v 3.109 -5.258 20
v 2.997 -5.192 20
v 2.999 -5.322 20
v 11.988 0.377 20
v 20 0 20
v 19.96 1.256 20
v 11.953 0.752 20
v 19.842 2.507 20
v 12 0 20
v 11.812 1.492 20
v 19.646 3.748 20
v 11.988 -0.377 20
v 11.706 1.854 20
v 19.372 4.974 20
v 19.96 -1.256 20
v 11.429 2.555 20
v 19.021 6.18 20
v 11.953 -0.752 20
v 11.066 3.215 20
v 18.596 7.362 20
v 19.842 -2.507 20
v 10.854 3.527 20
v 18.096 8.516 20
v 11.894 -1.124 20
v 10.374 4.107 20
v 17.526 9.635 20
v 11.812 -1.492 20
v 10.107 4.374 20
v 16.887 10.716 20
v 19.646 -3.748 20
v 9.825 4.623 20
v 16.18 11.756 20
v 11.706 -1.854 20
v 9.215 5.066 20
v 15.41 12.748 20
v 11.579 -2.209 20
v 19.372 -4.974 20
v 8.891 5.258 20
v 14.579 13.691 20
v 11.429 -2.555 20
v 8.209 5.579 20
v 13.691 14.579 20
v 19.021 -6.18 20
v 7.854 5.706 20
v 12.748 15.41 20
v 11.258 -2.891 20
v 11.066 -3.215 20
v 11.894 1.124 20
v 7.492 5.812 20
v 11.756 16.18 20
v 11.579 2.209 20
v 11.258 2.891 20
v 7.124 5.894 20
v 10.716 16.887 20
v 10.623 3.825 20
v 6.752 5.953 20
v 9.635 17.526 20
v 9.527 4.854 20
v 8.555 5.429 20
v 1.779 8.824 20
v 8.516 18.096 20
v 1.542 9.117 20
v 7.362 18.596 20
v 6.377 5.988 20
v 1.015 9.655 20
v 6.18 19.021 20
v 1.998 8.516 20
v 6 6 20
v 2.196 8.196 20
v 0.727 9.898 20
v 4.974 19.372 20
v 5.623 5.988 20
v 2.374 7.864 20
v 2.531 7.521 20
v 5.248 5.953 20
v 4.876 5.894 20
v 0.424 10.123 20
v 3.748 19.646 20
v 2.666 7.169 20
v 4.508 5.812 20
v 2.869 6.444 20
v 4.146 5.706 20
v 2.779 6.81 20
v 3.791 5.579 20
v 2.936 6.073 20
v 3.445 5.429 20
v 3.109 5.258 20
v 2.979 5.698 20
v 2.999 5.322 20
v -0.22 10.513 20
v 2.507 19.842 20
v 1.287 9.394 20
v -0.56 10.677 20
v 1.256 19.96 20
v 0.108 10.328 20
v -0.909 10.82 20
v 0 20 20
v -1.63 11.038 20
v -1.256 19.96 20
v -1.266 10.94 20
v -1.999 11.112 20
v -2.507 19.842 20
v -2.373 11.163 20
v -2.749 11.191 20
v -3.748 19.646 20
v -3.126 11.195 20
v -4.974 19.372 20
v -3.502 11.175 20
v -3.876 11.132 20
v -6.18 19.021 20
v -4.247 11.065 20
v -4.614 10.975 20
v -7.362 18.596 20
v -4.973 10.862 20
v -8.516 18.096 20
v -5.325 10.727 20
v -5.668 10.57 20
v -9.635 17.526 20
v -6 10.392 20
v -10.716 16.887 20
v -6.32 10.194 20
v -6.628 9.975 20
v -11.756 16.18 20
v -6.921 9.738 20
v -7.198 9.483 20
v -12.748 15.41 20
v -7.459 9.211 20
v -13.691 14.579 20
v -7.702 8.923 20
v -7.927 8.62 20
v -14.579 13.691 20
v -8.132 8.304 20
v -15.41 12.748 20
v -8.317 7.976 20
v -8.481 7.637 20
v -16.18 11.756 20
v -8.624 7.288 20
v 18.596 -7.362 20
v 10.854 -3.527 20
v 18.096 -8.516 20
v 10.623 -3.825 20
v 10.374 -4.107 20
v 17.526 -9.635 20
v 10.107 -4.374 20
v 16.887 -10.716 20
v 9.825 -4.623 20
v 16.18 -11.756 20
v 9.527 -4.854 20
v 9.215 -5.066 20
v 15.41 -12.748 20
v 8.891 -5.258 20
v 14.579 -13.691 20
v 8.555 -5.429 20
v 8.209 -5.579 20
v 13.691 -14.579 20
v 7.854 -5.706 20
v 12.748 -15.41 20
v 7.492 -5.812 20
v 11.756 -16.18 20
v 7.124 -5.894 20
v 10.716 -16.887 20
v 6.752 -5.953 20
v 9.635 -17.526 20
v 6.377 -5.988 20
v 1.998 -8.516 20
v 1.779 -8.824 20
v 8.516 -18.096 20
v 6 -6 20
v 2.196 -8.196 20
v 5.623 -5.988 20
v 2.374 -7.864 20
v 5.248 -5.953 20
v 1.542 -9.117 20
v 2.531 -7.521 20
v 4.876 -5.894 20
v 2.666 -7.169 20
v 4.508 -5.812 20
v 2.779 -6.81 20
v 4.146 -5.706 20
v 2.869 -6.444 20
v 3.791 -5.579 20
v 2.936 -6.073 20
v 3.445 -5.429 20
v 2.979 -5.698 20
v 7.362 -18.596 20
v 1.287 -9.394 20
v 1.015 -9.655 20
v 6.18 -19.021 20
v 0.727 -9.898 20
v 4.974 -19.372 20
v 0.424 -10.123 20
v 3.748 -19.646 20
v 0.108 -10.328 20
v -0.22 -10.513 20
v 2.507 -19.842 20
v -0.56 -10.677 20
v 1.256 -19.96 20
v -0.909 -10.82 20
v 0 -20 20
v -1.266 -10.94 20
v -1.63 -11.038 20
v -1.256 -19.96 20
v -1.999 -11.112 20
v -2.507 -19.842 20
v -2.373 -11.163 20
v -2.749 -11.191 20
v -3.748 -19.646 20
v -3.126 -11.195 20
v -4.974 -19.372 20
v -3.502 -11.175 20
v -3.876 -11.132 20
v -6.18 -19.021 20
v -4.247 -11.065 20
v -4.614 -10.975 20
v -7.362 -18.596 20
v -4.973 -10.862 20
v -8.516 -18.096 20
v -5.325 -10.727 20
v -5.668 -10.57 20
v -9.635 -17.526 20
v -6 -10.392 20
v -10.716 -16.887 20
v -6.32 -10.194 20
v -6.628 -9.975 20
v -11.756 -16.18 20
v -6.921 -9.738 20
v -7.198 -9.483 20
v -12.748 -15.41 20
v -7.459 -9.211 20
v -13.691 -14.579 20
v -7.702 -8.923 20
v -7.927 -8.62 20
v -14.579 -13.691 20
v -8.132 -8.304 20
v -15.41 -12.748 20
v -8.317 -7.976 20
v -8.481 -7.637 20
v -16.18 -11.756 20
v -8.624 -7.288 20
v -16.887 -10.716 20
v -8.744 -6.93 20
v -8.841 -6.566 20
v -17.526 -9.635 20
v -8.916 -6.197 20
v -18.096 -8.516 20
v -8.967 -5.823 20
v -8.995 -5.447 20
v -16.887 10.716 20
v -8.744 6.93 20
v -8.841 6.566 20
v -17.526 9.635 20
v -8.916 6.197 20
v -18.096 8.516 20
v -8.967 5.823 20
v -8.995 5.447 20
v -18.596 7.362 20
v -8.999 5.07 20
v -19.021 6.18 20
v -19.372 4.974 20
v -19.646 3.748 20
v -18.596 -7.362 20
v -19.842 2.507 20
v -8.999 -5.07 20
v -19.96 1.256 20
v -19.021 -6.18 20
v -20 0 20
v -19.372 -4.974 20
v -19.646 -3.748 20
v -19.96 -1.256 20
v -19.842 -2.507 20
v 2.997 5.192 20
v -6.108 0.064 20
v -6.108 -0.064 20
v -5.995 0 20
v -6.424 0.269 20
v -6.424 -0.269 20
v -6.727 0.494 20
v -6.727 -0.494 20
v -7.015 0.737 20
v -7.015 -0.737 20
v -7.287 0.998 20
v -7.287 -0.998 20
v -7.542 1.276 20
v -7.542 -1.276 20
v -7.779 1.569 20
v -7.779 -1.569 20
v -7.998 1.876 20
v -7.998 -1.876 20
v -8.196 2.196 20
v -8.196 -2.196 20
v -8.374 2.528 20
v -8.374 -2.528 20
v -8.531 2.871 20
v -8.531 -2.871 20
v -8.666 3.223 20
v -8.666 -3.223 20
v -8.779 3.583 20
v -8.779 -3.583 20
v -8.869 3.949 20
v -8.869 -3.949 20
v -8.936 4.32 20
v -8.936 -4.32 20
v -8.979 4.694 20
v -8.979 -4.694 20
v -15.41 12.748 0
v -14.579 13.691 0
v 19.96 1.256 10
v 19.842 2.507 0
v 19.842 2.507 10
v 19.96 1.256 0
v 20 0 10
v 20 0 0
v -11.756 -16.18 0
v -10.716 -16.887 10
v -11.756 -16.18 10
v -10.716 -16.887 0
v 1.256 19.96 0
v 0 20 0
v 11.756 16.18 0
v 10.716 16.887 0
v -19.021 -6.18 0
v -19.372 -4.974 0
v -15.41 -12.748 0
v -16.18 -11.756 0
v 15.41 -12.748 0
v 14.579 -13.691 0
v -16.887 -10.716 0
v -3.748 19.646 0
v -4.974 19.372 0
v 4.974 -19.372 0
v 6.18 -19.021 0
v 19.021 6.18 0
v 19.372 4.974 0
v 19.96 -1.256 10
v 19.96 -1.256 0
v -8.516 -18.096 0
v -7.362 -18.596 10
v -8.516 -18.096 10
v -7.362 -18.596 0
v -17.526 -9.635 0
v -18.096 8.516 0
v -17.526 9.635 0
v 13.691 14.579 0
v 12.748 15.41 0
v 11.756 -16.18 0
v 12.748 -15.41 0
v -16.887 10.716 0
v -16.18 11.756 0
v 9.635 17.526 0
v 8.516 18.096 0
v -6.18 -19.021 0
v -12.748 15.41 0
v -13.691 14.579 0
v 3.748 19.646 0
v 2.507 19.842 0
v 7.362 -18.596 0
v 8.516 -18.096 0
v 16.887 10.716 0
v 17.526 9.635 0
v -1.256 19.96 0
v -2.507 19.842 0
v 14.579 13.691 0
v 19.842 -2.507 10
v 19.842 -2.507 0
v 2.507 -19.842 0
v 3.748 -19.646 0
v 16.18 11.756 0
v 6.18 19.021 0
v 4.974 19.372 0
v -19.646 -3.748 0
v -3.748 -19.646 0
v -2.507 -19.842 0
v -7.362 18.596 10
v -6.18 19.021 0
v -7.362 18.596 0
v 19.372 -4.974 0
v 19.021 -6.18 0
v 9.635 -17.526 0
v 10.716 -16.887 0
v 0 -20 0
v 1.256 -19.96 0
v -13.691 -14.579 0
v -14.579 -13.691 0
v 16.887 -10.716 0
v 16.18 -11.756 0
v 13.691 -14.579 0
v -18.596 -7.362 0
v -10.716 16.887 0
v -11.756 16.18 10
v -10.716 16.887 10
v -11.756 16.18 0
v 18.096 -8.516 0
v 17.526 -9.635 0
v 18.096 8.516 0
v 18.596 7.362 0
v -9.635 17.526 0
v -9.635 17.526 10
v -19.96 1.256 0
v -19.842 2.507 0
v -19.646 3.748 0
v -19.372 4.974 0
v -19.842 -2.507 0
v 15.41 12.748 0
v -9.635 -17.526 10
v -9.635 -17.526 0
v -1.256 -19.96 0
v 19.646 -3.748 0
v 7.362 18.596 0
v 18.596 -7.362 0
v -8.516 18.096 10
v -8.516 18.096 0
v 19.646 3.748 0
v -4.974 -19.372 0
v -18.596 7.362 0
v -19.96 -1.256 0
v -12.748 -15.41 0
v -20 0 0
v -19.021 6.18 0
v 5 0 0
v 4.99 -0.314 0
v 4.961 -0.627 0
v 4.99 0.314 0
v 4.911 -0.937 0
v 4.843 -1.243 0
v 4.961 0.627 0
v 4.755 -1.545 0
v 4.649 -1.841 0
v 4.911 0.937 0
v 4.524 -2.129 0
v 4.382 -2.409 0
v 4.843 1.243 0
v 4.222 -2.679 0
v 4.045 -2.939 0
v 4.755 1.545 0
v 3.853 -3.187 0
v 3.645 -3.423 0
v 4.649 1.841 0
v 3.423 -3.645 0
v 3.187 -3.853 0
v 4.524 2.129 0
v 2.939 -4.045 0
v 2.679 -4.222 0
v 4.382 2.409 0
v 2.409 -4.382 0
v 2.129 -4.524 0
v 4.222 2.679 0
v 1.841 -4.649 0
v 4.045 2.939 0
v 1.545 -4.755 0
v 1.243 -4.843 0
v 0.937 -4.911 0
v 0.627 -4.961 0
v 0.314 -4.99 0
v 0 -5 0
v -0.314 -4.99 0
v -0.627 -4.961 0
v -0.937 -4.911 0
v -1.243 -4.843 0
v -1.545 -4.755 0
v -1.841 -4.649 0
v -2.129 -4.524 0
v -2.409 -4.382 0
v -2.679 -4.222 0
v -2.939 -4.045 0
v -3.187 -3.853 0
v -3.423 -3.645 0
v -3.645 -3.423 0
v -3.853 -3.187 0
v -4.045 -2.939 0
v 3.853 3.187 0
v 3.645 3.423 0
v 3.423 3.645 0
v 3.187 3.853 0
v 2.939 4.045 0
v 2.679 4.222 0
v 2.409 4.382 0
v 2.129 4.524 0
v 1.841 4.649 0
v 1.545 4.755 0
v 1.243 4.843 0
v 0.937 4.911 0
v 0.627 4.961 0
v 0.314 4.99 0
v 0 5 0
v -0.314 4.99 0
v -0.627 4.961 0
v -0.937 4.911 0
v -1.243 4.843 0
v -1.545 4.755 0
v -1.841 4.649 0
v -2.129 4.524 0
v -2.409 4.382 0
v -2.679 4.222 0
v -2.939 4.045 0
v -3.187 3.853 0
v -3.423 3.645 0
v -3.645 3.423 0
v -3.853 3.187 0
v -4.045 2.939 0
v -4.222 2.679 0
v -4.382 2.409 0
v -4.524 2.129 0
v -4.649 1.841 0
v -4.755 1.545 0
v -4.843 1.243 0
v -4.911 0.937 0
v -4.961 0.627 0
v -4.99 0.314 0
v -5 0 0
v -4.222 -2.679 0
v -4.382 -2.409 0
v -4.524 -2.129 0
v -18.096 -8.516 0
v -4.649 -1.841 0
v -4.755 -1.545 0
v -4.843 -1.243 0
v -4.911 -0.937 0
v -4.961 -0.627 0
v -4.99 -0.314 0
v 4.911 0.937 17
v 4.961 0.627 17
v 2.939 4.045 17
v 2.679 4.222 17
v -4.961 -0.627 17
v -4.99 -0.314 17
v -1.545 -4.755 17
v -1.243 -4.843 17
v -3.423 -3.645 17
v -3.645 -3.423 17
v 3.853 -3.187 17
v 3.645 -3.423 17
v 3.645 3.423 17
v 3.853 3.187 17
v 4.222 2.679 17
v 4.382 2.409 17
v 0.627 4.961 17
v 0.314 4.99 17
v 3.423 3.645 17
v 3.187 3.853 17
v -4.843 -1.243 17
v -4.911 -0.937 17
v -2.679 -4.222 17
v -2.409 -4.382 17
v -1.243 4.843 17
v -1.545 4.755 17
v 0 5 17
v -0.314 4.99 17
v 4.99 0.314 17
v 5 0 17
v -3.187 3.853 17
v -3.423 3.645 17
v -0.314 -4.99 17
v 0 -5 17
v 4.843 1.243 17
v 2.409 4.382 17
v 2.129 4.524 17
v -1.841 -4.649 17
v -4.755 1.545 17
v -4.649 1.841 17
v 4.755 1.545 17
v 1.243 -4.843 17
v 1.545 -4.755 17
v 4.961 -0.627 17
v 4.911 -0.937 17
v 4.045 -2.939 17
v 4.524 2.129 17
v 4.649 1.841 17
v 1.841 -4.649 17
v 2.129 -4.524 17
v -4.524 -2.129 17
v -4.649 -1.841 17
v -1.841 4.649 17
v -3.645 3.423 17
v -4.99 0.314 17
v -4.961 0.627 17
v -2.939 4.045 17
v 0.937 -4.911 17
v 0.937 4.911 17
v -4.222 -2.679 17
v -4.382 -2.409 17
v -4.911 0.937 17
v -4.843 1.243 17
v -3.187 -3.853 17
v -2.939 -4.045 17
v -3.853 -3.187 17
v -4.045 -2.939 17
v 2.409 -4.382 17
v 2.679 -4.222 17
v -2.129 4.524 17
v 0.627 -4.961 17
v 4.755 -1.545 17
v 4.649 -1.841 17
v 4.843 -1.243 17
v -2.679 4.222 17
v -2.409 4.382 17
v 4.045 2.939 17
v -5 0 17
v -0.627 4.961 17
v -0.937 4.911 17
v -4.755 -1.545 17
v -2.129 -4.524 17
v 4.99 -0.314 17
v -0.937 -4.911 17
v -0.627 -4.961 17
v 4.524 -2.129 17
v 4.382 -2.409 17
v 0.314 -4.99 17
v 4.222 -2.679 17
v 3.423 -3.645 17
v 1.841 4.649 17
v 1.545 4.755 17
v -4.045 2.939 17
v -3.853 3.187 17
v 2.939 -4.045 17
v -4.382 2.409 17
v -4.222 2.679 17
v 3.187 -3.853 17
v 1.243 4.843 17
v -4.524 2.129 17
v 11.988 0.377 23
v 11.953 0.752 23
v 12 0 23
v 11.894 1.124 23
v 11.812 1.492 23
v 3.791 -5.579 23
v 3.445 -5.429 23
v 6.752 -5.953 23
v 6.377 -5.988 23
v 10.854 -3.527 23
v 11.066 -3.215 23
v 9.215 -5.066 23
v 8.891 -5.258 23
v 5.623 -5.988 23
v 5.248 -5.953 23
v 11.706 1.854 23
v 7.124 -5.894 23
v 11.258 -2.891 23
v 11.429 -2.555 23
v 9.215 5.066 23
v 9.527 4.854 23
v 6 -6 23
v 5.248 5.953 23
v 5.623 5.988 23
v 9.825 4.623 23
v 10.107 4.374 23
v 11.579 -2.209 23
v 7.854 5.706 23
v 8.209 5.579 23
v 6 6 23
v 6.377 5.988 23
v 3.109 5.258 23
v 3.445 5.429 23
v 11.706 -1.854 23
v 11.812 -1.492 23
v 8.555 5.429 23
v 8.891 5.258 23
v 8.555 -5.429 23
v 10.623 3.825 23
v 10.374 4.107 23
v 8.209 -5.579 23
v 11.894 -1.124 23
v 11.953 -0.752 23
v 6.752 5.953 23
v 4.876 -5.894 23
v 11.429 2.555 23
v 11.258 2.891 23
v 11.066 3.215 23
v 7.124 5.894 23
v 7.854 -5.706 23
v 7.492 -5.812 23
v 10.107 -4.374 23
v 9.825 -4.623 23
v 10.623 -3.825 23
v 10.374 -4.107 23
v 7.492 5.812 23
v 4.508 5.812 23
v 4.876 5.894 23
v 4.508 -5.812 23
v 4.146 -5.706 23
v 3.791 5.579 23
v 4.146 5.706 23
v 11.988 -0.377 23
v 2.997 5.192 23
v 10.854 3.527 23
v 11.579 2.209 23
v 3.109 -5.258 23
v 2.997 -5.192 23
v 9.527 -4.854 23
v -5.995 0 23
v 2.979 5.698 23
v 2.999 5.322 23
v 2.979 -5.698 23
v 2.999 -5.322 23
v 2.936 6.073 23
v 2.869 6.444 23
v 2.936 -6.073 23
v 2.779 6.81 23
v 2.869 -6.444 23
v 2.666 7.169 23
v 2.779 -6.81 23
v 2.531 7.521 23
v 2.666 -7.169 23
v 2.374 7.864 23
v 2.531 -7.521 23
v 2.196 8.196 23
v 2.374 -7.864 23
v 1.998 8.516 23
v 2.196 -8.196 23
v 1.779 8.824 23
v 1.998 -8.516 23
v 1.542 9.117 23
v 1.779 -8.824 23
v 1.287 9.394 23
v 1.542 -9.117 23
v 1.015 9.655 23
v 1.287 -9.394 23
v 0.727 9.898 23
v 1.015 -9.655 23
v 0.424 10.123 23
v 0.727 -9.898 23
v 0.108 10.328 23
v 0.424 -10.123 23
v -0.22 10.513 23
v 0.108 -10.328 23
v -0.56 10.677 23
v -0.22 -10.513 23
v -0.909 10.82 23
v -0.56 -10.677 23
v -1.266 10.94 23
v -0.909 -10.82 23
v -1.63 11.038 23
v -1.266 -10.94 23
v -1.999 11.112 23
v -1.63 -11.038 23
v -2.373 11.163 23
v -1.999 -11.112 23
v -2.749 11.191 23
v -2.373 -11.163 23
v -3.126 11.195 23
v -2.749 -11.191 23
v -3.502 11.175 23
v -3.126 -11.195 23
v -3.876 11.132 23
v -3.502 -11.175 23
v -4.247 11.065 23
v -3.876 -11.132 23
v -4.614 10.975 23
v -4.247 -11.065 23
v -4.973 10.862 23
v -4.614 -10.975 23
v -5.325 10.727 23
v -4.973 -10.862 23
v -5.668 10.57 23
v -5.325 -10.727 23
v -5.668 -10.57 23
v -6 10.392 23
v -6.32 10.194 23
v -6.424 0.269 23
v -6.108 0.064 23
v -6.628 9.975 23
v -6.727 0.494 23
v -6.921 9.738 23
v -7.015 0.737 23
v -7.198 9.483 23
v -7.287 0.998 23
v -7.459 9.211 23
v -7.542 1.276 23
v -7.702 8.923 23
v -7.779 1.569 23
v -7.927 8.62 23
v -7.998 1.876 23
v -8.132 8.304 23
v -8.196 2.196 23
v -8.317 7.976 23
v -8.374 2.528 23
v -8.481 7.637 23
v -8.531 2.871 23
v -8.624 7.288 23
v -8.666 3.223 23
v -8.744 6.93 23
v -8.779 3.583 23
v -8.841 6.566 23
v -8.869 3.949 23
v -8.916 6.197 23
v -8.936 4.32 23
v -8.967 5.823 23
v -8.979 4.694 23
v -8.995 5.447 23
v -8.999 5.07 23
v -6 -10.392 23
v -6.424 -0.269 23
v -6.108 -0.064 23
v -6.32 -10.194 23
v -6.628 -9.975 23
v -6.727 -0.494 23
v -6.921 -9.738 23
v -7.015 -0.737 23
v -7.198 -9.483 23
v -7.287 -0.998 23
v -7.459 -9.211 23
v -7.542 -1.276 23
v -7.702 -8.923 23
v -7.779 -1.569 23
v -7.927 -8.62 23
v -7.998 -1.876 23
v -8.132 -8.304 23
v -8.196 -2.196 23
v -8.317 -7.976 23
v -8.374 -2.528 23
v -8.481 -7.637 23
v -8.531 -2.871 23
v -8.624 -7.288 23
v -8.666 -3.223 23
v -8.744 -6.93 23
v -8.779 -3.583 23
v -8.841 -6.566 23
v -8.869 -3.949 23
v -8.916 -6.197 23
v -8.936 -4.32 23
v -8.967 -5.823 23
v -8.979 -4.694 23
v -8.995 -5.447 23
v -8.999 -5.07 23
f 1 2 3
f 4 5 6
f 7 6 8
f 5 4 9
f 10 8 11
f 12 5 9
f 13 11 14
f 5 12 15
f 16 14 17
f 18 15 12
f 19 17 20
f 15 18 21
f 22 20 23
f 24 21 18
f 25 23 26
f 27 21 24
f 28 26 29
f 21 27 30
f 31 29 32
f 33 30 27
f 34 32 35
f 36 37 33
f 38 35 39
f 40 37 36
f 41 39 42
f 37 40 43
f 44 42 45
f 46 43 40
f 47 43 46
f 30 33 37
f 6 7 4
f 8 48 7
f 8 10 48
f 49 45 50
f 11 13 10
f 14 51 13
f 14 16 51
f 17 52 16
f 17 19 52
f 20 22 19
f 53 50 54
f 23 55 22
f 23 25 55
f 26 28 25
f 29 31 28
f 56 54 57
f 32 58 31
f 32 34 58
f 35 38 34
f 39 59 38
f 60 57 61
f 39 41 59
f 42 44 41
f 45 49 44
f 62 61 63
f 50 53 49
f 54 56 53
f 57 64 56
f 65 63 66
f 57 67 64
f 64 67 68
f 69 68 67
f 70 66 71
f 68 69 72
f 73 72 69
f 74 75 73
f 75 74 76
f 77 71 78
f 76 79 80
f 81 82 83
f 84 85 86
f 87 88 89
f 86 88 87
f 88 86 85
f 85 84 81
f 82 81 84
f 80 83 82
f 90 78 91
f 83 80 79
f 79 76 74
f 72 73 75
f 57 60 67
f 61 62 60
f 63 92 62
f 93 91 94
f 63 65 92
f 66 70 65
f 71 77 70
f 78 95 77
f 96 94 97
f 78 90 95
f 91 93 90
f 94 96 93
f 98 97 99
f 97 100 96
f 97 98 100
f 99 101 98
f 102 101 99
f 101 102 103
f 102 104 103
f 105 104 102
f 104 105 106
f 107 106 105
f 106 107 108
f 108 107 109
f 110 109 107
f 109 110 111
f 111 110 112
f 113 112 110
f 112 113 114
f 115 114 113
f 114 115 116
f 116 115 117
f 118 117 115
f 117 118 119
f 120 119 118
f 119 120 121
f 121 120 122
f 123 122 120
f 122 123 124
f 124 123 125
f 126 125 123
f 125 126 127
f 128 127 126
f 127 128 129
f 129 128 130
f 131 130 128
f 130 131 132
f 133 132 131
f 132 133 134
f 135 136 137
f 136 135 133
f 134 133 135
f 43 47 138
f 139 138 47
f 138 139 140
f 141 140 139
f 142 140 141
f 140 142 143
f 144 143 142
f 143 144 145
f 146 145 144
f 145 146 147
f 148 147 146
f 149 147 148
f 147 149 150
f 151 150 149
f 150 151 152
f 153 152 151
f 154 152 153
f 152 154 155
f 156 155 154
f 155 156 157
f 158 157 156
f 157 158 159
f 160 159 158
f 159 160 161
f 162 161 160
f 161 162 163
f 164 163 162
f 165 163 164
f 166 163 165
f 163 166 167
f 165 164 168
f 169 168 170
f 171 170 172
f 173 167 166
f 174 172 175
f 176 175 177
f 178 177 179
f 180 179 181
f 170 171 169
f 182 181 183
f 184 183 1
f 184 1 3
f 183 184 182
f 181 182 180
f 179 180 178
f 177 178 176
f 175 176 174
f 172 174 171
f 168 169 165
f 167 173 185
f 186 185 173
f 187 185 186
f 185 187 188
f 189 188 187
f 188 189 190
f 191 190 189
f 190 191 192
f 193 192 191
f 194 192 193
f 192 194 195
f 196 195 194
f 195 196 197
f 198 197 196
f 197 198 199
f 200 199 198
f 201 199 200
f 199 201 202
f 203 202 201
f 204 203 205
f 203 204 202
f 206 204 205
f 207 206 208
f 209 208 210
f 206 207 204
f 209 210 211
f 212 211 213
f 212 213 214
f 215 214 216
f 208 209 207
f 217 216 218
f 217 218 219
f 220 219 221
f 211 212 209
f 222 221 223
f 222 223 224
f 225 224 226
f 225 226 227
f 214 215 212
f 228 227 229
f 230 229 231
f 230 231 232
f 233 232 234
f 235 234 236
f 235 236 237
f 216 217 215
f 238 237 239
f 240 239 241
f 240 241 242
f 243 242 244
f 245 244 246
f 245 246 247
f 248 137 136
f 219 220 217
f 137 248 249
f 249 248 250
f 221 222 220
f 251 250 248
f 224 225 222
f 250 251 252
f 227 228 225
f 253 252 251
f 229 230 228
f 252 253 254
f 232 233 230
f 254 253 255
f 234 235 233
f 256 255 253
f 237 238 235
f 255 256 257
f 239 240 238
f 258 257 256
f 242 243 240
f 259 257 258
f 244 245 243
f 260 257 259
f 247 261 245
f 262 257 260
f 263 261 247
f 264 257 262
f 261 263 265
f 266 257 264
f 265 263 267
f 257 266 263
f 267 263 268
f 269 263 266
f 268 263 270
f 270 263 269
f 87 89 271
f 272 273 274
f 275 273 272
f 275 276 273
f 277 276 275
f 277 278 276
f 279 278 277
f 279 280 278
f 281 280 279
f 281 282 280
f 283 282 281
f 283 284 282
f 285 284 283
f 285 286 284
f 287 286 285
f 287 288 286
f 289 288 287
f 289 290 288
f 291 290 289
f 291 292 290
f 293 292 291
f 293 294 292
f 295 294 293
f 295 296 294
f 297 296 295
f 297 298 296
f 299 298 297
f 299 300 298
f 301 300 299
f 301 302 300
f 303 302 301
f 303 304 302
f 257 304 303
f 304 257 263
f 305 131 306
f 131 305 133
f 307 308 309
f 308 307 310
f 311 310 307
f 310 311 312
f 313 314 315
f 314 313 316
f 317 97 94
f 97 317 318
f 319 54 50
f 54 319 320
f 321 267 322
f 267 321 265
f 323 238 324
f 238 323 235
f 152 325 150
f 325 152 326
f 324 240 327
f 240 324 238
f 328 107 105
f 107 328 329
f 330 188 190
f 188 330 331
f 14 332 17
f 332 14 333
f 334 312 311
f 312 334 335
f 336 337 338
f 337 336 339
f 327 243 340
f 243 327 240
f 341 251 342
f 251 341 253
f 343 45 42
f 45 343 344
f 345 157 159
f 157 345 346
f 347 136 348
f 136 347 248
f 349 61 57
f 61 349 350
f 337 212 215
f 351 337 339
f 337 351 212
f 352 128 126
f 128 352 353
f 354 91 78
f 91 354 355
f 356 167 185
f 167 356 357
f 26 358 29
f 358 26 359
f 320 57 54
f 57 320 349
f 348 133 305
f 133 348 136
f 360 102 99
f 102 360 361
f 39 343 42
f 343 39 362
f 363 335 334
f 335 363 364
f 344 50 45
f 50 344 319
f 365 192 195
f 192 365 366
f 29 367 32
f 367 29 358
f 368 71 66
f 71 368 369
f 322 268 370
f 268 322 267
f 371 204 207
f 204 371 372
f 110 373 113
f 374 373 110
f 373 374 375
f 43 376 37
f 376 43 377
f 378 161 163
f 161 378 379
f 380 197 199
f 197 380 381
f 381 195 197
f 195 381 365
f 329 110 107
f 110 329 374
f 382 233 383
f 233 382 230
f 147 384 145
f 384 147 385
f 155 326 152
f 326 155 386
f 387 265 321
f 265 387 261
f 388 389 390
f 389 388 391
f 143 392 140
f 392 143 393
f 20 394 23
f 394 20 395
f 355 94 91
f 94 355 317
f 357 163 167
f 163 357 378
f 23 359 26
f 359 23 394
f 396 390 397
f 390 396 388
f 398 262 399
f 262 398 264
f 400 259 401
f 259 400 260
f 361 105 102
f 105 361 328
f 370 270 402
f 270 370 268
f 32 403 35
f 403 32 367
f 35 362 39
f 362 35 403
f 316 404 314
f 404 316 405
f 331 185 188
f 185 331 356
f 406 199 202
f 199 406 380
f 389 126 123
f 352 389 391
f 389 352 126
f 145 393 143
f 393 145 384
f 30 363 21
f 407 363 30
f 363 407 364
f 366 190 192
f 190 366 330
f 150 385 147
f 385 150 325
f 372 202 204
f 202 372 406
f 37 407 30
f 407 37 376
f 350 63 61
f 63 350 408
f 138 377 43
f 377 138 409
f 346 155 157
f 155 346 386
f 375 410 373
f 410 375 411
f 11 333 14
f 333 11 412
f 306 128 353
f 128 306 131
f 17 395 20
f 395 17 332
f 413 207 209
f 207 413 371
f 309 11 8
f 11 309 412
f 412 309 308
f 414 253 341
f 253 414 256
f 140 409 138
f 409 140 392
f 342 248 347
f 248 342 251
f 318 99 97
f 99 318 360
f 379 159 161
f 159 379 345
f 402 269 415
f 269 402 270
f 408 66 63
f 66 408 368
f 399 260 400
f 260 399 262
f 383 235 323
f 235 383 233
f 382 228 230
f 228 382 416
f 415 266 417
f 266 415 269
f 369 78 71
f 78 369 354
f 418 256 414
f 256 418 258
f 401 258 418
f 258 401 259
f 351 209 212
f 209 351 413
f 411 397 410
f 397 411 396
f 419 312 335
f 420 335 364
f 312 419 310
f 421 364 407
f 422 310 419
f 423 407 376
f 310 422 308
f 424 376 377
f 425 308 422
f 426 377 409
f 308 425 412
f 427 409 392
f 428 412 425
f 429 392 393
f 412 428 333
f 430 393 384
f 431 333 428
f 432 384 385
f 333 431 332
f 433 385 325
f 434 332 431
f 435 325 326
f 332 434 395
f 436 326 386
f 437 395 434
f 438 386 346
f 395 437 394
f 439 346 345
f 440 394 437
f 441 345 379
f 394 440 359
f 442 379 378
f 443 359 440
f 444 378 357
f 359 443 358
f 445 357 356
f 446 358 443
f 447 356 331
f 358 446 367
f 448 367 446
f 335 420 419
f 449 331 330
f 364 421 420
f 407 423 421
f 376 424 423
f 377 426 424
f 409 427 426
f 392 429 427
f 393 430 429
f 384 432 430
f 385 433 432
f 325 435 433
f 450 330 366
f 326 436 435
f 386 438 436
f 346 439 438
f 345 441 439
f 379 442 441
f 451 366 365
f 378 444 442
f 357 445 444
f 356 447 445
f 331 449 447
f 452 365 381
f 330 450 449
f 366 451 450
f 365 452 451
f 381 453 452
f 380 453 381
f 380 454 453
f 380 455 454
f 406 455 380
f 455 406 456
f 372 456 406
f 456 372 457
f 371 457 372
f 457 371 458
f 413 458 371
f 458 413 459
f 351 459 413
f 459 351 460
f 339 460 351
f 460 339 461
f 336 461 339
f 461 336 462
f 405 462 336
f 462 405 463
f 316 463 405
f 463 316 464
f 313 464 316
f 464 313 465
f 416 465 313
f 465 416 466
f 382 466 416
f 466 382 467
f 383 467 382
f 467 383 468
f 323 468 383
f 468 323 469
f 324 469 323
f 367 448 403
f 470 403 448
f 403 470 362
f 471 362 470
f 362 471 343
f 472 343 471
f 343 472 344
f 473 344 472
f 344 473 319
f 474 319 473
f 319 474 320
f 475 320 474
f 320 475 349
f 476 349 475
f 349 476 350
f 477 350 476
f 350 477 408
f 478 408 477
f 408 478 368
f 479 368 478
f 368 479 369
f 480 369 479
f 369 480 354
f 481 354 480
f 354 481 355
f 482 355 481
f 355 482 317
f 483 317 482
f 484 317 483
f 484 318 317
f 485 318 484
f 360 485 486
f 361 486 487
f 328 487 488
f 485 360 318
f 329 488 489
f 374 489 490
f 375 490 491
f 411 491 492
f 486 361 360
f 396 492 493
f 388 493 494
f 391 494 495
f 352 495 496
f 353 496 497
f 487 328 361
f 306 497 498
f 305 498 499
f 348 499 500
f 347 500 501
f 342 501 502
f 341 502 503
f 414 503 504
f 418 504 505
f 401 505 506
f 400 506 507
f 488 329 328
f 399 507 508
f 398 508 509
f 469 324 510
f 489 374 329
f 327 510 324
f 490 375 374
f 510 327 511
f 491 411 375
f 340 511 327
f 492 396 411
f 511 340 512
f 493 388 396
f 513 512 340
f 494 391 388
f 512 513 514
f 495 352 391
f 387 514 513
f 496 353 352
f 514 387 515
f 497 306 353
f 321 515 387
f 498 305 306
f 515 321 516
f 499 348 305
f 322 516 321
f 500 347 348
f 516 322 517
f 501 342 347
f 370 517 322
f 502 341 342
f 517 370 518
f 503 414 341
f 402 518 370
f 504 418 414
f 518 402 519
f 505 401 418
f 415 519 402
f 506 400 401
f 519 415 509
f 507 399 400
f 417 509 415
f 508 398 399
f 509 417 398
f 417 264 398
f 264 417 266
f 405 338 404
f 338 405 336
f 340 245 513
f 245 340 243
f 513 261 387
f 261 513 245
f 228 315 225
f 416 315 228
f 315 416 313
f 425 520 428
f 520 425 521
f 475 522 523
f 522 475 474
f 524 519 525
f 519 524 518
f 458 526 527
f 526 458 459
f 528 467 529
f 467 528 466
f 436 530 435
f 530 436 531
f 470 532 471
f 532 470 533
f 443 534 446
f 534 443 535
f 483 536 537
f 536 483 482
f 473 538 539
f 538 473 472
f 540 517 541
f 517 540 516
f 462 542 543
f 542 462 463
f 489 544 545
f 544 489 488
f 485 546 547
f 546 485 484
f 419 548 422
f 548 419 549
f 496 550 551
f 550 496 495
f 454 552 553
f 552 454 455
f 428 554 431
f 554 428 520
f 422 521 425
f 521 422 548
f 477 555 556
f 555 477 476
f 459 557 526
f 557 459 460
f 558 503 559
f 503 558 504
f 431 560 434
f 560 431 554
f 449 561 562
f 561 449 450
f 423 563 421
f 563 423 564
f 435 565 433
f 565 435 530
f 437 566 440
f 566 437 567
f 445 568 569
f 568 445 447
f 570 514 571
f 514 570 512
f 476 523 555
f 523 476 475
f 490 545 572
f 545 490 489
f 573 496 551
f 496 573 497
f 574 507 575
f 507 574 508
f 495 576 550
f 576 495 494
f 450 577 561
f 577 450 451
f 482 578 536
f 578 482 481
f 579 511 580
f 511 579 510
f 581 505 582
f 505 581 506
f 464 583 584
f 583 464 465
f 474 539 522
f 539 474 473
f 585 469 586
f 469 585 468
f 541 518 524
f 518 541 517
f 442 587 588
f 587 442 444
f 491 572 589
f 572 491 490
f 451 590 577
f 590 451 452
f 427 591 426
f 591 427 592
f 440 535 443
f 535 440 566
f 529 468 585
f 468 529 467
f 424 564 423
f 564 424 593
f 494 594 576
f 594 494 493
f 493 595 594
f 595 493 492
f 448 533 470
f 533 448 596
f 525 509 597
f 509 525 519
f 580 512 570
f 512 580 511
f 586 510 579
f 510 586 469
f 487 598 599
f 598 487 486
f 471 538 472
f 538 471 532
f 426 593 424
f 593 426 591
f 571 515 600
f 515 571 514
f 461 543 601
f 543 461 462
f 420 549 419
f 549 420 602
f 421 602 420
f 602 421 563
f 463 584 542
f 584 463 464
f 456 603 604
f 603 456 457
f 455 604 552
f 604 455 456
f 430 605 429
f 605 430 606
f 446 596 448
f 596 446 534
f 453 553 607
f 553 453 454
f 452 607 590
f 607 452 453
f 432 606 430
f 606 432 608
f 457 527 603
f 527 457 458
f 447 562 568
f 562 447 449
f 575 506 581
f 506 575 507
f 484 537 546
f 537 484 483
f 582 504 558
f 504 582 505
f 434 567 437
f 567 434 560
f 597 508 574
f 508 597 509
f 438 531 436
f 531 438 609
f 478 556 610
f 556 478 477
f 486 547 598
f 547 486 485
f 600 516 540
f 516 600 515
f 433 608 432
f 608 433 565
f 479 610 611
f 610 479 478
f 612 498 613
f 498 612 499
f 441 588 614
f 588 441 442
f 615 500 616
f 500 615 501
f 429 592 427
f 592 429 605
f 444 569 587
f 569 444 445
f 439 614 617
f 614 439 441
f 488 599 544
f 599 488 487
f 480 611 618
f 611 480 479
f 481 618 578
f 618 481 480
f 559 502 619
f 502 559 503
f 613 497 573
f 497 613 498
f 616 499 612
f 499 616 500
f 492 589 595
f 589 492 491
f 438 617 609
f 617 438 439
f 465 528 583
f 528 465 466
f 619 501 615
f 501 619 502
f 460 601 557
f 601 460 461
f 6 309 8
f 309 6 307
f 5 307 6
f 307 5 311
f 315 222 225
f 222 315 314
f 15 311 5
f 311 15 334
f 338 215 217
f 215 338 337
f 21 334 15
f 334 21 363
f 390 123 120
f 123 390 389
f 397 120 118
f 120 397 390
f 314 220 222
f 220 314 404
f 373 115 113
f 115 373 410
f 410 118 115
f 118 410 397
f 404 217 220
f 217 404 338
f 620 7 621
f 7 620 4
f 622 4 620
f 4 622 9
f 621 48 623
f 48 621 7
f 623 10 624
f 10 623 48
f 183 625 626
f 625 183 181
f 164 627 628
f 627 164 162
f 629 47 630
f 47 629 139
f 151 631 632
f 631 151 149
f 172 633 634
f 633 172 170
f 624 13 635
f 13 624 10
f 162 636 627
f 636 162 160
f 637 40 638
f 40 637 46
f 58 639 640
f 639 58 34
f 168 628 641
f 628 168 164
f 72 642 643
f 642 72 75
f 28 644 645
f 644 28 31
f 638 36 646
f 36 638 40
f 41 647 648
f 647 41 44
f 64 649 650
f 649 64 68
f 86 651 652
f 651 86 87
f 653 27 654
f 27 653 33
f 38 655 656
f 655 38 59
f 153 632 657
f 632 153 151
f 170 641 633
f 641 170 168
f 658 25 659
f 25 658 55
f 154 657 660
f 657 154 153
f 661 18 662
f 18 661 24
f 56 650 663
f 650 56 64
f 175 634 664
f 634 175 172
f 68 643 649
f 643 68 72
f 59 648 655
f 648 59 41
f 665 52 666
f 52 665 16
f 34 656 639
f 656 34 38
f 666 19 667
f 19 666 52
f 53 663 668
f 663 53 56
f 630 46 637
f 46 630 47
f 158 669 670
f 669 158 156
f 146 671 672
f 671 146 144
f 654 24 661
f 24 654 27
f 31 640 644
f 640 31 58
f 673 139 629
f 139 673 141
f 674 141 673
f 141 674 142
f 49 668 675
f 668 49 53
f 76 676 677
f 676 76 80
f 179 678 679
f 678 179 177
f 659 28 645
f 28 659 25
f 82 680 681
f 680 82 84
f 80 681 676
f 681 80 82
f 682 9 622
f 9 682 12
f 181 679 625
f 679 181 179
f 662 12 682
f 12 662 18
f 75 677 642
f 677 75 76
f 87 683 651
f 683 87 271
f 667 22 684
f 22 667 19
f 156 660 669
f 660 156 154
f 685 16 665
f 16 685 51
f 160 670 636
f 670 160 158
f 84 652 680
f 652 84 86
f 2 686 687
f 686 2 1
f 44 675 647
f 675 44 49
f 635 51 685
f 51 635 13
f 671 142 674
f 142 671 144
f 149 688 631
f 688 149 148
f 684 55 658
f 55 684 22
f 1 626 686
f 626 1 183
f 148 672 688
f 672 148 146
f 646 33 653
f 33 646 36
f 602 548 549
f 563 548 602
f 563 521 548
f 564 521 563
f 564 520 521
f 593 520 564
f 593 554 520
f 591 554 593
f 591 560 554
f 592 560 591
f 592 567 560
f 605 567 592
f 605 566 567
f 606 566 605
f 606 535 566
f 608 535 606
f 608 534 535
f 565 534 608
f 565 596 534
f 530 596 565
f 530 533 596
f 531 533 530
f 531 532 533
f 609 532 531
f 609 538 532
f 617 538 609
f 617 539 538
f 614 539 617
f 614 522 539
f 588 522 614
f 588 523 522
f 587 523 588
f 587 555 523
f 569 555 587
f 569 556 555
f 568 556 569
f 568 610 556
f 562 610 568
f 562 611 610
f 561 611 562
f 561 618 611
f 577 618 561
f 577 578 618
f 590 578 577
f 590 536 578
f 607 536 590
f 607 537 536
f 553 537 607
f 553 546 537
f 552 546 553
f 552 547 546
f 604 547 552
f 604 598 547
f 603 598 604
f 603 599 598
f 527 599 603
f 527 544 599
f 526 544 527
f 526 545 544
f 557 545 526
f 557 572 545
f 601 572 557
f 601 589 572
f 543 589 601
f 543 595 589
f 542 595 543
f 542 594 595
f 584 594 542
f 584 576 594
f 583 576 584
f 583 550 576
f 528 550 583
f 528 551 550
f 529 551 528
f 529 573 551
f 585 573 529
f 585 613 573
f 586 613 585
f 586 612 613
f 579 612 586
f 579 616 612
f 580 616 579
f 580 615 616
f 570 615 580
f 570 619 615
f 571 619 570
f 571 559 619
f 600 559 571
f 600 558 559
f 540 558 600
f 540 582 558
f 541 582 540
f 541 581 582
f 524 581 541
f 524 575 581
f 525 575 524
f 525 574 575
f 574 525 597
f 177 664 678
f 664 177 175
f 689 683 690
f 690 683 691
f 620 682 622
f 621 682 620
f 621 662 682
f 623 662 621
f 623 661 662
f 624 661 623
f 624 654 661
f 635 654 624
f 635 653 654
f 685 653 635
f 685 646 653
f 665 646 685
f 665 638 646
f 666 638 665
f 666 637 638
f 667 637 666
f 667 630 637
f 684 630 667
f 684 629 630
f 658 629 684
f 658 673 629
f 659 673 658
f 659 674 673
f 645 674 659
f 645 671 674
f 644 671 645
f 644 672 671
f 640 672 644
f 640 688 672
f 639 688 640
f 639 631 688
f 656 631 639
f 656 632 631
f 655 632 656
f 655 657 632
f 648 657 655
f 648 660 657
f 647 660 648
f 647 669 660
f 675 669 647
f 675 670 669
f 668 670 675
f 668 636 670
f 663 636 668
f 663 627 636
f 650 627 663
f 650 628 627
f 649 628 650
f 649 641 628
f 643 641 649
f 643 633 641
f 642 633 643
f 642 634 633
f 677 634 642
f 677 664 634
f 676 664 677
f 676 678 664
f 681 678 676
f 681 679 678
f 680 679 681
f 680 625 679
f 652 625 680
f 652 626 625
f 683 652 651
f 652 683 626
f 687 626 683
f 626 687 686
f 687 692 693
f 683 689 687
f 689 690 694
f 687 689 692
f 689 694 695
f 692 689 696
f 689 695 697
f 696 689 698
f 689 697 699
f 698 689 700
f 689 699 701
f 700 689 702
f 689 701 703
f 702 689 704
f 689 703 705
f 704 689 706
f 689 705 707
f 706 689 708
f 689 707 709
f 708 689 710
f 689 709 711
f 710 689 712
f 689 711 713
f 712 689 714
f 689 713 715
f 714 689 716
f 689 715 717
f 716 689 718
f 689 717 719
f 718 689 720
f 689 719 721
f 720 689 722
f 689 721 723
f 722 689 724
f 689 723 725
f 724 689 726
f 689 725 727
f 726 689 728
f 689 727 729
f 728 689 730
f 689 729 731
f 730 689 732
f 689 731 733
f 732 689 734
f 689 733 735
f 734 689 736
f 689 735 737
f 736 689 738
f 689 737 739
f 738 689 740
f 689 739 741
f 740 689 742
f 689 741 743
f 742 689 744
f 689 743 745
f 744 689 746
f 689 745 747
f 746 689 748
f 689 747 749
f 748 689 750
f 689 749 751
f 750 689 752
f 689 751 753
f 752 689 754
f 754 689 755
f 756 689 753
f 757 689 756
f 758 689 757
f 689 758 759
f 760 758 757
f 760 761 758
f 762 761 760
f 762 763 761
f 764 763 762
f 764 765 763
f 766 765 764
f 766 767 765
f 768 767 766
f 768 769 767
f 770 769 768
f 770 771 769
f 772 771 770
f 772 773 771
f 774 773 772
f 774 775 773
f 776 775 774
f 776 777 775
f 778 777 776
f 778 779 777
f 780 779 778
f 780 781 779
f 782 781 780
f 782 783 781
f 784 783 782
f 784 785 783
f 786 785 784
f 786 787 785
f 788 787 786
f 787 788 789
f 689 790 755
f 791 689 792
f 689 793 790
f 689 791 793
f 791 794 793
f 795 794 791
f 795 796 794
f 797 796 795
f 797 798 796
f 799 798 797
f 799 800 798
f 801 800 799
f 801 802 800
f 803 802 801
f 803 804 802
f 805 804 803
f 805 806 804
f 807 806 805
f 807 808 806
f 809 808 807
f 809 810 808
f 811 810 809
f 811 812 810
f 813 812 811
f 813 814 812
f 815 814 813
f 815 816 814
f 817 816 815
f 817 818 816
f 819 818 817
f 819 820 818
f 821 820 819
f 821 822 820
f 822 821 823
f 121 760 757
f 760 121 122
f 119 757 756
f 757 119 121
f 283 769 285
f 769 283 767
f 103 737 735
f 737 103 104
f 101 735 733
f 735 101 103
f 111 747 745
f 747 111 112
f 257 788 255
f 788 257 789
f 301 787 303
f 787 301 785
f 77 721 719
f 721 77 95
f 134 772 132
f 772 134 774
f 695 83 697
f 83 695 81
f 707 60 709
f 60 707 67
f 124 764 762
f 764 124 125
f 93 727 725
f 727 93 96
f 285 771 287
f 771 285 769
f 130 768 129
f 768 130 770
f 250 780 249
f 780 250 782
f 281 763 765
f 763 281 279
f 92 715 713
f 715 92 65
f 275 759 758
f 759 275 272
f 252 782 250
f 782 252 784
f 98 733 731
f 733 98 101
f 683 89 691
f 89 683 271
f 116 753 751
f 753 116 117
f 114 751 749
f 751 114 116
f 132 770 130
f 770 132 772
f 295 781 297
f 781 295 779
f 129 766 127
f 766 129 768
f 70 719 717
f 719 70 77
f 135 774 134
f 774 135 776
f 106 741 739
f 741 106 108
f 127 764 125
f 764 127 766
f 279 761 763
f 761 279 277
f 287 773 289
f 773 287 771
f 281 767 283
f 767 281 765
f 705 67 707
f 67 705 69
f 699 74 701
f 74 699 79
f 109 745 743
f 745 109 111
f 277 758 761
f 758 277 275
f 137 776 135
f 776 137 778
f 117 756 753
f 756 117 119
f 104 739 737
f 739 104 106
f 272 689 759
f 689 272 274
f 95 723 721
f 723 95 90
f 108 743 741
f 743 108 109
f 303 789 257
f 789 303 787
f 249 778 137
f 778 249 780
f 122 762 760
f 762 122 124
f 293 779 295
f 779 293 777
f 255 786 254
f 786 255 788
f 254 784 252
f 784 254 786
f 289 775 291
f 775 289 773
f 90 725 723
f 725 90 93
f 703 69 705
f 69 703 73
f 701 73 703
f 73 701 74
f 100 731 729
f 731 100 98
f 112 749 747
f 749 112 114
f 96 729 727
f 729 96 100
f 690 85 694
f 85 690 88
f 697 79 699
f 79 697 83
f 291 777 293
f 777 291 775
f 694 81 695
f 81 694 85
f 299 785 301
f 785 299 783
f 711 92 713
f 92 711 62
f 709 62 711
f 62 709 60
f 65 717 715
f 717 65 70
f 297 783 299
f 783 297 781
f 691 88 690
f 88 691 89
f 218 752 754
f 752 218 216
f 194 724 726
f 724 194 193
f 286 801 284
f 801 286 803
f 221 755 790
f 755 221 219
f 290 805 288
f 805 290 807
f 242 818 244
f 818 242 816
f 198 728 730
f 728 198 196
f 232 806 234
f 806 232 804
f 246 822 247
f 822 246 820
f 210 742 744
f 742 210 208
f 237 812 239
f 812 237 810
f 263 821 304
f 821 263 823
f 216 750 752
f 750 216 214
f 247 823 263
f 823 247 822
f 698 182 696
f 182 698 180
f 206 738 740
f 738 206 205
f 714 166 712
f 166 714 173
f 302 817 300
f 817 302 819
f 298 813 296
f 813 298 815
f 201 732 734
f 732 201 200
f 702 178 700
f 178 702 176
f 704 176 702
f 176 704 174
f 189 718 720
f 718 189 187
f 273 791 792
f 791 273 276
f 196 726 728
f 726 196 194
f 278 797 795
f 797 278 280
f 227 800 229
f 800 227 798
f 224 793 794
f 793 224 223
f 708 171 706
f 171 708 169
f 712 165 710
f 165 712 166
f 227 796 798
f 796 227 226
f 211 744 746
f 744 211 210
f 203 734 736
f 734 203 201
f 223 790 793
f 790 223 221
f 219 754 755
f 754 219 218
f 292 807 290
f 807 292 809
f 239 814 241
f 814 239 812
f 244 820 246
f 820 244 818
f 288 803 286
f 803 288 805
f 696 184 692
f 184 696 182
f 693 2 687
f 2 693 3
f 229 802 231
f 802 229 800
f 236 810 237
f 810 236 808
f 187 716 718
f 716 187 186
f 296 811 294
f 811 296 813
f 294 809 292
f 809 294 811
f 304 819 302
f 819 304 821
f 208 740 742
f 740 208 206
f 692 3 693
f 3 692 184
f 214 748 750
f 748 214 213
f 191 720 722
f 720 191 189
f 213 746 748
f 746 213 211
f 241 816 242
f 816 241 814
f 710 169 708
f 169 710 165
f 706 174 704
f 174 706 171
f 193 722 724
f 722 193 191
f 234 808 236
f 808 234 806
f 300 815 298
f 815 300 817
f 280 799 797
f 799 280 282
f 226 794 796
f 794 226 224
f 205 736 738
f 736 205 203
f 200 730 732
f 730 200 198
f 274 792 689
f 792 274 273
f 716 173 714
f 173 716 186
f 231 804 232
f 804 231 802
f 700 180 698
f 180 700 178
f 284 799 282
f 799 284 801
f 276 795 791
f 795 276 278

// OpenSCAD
$fn = 100; // Smoothness

// Parameters
coupling_diameter = 40;
coupling_length = 20;
bore_diameter = 10;
slot_width = 6;
slot_depth = 6;
slot_height = 10;
spider_thickness = 6;
spider_lobe_radius = 6;

// Main Assembly
module coupling_half(mirror=false) {
    difference() {
        // Main body
        cylinder(d=coupling_diameter, h=coupling_length);

        // Bore hole
        translate([0, 0, -1])
            cylinder(d=bore_diameter, h=coupling_length + 2);

        // Slots
        for (i = [0:2]) {
            angle = i * 120;
            rotate([0, 0, angle])
                translate([coupling_diameter/2 - slot_depth, -slot_width/2, coupling_length - slot_height])
                    cube([slot_depth, slot_width, slot_height]);
        }
    }
}

// Central Spider
module central_spider() {
    difference() {
        union() {
            for (i = [0:2]) {
                rotate([0, 0, i * 120])
                    translate([spider_lobe_radius, 0, 0])
                        cylinder(r=spider_lobe_radius, h=spider_thickness);
            }
        }
        // Trim bottom and top to make it flat
        translate([-20, -20, -1])
            cube([40, 40, 1]);
        translate([-20, -20, spider_thickness])
            cube([40, 40, 1]);
    }
}

// Assembly
translate([0, 0, 0])
    coupling_half();

translate([0, 0, coupling_length])
    mirror([0, 0, 1])
        coupling_half();

translate([0, 0, coupling_length - spider_thickness/2])
    central_spider();
